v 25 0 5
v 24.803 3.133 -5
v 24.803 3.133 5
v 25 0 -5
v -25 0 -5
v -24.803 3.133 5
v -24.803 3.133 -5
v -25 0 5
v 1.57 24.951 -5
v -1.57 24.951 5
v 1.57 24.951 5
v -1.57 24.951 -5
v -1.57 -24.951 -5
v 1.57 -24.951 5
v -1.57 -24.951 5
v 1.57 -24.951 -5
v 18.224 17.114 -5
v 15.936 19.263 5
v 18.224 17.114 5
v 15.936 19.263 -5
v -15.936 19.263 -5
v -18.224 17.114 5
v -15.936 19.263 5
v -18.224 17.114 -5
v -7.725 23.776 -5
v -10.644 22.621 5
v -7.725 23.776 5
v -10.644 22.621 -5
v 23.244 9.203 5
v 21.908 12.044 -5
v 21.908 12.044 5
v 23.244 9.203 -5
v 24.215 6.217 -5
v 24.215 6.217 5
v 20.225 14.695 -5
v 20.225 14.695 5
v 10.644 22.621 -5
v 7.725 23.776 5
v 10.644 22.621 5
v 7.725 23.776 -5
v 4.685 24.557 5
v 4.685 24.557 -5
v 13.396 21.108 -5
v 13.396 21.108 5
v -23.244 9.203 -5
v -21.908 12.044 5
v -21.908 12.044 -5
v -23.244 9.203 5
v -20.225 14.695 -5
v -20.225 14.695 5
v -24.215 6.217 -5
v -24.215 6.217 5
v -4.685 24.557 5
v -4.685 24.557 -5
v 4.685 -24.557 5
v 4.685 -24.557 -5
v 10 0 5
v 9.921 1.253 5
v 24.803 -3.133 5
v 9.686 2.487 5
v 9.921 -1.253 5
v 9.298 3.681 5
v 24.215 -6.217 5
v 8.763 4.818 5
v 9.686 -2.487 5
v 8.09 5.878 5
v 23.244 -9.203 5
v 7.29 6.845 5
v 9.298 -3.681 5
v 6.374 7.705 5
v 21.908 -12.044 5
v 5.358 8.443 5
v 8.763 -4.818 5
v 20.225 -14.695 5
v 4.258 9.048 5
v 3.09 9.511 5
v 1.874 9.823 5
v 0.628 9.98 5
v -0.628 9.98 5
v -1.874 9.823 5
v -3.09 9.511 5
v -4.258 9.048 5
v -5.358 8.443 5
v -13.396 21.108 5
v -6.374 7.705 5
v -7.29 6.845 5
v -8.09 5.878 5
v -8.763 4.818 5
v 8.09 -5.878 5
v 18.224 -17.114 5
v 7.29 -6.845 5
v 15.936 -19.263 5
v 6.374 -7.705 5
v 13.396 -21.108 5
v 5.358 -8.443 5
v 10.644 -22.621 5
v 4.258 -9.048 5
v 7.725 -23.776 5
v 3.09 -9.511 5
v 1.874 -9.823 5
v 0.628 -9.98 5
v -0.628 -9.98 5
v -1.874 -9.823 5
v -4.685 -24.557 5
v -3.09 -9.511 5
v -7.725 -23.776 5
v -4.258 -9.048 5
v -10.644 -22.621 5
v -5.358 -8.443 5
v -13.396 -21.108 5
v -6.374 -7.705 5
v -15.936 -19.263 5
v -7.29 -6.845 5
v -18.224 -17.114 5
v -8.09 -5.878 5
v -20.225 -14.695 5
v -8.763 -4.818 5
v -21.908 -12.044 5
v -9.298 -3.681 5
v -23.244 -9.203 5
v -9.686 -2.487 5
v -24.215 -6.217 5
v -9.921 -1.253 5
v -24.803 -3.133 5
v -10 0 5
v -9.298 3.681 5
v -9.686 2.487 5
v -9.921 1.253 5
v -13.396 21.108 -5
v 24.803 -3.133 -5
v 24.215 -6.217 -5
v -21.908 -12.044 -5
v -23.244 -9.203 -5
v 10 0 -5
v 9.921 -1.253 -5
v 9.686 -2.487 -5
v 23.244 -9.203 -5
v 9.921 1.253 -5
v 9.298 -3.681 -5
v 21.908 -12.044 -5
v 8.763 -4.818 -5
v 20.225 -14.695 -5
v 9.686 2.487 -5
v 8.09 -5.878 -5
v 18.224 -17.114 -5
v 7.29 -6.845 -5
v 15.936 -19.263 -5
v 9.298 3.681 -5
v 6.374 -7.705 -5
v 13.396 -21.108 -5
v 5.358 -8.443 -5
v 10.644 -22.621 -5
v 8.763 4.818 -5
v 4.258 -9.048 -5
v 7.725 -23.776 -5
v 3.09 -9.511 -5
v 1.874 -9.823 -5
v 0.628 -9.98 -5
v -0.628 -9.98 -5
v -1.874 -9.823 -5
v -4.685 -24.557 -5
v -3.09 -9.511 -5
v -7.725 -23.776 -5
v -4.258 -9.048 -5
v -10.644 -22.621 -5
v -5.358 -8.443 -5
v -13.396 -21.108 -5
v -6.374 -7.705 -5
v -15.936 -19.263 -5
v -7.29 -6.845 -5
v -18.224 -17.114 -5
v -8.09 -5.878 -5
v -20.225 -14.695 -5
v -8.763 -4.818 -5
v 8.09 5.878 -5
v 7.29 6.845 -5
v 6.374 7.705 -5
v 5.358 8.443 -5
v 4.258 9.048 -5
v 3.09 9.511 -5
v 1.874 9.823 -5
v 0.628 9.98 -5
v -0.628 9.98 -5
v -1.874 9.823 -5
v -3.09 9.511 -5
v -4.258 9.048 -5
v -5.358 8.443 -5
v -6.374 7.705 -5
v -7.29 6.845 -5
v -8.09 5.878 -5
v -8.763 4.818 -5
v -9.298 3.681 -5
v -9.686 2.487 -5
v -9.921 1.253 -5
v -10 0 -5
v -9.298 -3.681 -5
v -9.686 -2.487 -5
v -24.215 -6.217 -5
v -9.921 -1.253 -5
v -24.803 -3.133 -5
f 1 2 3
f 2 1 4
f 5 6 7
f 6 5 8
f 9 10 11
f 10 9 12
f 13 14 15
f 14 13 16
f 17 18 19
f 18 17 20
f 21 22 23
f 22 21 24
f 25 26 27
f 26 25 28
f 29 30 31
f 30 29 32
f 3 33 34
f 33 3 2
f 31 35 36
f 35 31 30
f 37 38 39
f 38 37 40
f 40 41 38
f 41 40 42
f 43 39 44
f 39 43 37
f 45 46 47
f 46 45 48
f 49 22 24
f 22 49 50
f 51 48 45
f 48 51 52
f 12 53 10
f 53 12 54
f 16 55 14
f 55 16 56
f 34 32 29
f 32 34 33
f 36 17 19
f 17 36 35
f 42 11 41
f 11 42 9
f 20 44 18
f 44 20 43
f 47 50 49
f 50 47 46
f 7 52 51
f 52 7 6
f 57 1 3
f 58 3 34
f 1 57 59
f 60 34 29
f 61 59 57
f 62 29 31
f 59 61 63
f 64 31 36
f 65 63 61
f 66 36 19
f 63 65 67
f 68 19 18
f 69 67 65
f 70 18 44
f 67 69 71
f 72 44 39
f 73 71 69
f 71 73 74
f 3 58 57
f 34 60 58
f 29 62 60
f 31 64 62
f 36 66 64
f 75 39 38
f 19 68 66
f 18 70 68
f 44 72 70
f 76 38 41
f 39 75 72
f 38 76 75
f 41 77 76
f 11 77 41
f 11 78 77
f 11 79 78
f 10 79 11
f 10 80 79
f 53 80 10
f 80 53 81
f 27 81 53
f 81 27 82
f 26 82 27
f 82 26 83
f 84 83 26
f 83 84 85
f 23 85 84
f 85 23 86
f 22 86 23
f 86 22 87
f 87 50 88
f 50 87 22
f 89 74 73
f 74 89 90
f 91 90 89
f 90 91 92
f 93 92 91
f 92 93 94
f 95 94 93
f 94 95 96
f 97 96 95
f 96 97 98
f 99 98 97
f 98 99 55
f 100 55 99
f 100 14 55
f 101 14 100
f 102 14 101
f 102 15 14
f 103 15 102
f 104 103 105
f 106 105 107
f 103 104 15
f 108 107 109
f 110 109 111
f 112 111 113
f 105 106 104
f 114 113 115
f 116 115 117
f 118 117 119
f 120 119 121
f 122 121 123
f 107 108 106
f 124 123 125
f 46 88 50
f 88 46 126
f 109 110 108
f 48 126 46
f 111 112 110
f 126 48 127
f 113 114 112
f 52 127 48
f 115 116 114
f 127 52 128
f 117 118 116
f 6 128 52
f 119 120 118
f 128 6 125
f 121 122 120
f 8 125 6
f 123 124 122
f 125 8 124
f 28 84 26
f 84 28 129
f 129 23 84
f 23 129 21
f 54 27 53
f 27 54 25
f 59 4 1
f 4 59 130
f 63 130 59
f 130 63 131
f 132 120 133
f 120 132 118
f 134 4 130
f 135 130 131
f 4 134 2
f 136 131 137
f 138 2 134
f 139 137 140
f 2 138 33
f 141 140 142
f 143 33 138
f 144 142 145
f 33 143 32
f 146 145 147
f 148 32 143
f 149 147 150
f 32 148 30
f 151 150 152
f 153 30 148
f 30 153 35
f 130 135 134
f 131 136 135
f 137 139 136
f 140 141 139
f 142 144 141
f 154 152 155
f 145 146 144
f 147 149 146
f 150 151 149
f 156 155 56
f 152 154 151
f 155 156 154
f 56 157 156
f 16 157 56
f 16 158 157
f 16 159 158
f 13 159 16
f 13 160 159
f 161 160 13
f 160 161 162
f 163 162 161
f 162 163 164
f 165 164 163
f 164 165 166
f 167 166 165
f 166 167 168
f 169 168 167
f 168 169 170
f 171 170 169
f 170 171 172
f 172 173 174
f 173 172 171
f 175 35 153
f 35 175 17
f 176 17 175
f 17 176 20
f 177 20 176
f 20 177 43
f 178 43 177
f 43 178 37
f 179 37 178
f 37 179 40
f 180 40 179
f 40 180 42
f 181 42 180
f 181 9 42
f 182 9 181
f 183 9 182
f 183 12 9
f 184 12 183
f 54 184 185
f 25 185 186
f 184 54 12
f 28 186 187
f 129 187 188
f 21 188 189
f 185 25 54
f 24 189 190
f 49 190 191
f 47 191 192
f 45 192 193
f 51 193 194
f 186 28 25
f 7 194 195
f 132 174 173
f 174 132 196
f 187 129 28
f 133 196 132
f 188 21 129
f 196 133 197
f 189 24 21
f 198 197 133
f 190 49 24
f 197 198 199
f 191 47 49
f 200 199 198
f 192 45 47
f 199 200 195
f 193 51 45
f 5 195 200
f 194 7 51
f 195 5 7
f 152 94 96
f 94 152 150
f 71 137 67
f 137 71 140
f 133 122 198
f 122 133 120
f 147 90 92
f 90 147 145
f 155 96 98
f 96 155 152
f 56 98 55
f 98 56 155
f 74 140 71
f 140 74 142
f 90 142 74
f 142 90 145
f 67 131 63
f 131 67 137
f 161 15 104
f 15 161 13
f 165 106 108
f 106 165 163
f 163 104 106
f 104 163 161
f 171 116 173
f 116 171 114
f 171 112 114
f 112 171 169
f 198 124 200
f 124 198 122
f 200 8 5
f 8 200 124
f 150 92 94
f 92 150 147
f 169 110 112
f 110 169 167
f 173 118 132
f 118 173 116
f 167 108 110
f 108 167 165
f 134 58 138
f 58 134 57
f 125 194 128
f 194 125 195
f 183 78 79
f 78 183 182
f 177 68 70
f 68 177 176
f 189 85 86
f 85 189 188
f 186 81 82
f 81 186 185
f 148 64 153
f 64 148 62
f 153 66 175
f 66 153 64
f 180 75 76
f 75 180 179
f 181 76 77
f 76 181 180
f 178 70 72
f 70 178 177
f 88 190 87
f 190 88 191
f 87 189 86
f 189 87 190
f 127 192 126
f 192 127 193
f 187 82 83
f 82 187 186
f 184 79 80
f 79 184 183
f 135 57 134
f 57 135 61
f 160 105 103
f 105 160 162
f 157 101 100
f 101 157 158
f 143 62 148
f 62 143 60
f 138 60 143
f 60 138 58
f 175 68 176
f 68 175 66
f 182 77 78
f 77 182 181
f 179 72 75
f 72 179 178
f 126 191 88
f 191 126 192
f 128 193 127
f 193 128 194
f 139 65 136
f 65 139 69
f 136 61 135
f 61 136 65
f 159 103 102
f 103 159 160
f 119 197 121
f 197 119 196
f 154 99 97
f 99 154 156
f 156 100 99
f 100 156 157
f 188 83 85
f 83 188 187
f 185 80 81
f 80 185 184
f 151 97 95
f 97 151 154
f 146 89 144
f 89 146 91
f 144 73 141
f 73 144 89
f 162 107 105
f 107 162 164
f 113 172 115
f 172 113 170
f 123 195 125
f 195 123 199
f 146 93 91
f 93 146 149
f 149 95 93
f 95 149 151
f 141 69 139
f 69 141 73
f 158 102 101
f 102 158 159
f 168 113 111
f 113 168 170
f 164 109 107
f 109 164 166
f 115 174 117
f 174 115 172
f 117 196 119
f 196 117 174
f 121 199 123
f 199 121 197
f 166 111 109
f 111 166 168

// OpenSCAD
$fn = 50;


difference() {
	union() {
		translate(v = [0, 0, -5.0000000000]) {
			cylinder(h = 10, r = 25.0000000000);
		}
	}
	union() {
		translate(v = [0, 0, -100.0000000000]) {
			cylinder(h = 200, r = 10);
		}
	}
}
